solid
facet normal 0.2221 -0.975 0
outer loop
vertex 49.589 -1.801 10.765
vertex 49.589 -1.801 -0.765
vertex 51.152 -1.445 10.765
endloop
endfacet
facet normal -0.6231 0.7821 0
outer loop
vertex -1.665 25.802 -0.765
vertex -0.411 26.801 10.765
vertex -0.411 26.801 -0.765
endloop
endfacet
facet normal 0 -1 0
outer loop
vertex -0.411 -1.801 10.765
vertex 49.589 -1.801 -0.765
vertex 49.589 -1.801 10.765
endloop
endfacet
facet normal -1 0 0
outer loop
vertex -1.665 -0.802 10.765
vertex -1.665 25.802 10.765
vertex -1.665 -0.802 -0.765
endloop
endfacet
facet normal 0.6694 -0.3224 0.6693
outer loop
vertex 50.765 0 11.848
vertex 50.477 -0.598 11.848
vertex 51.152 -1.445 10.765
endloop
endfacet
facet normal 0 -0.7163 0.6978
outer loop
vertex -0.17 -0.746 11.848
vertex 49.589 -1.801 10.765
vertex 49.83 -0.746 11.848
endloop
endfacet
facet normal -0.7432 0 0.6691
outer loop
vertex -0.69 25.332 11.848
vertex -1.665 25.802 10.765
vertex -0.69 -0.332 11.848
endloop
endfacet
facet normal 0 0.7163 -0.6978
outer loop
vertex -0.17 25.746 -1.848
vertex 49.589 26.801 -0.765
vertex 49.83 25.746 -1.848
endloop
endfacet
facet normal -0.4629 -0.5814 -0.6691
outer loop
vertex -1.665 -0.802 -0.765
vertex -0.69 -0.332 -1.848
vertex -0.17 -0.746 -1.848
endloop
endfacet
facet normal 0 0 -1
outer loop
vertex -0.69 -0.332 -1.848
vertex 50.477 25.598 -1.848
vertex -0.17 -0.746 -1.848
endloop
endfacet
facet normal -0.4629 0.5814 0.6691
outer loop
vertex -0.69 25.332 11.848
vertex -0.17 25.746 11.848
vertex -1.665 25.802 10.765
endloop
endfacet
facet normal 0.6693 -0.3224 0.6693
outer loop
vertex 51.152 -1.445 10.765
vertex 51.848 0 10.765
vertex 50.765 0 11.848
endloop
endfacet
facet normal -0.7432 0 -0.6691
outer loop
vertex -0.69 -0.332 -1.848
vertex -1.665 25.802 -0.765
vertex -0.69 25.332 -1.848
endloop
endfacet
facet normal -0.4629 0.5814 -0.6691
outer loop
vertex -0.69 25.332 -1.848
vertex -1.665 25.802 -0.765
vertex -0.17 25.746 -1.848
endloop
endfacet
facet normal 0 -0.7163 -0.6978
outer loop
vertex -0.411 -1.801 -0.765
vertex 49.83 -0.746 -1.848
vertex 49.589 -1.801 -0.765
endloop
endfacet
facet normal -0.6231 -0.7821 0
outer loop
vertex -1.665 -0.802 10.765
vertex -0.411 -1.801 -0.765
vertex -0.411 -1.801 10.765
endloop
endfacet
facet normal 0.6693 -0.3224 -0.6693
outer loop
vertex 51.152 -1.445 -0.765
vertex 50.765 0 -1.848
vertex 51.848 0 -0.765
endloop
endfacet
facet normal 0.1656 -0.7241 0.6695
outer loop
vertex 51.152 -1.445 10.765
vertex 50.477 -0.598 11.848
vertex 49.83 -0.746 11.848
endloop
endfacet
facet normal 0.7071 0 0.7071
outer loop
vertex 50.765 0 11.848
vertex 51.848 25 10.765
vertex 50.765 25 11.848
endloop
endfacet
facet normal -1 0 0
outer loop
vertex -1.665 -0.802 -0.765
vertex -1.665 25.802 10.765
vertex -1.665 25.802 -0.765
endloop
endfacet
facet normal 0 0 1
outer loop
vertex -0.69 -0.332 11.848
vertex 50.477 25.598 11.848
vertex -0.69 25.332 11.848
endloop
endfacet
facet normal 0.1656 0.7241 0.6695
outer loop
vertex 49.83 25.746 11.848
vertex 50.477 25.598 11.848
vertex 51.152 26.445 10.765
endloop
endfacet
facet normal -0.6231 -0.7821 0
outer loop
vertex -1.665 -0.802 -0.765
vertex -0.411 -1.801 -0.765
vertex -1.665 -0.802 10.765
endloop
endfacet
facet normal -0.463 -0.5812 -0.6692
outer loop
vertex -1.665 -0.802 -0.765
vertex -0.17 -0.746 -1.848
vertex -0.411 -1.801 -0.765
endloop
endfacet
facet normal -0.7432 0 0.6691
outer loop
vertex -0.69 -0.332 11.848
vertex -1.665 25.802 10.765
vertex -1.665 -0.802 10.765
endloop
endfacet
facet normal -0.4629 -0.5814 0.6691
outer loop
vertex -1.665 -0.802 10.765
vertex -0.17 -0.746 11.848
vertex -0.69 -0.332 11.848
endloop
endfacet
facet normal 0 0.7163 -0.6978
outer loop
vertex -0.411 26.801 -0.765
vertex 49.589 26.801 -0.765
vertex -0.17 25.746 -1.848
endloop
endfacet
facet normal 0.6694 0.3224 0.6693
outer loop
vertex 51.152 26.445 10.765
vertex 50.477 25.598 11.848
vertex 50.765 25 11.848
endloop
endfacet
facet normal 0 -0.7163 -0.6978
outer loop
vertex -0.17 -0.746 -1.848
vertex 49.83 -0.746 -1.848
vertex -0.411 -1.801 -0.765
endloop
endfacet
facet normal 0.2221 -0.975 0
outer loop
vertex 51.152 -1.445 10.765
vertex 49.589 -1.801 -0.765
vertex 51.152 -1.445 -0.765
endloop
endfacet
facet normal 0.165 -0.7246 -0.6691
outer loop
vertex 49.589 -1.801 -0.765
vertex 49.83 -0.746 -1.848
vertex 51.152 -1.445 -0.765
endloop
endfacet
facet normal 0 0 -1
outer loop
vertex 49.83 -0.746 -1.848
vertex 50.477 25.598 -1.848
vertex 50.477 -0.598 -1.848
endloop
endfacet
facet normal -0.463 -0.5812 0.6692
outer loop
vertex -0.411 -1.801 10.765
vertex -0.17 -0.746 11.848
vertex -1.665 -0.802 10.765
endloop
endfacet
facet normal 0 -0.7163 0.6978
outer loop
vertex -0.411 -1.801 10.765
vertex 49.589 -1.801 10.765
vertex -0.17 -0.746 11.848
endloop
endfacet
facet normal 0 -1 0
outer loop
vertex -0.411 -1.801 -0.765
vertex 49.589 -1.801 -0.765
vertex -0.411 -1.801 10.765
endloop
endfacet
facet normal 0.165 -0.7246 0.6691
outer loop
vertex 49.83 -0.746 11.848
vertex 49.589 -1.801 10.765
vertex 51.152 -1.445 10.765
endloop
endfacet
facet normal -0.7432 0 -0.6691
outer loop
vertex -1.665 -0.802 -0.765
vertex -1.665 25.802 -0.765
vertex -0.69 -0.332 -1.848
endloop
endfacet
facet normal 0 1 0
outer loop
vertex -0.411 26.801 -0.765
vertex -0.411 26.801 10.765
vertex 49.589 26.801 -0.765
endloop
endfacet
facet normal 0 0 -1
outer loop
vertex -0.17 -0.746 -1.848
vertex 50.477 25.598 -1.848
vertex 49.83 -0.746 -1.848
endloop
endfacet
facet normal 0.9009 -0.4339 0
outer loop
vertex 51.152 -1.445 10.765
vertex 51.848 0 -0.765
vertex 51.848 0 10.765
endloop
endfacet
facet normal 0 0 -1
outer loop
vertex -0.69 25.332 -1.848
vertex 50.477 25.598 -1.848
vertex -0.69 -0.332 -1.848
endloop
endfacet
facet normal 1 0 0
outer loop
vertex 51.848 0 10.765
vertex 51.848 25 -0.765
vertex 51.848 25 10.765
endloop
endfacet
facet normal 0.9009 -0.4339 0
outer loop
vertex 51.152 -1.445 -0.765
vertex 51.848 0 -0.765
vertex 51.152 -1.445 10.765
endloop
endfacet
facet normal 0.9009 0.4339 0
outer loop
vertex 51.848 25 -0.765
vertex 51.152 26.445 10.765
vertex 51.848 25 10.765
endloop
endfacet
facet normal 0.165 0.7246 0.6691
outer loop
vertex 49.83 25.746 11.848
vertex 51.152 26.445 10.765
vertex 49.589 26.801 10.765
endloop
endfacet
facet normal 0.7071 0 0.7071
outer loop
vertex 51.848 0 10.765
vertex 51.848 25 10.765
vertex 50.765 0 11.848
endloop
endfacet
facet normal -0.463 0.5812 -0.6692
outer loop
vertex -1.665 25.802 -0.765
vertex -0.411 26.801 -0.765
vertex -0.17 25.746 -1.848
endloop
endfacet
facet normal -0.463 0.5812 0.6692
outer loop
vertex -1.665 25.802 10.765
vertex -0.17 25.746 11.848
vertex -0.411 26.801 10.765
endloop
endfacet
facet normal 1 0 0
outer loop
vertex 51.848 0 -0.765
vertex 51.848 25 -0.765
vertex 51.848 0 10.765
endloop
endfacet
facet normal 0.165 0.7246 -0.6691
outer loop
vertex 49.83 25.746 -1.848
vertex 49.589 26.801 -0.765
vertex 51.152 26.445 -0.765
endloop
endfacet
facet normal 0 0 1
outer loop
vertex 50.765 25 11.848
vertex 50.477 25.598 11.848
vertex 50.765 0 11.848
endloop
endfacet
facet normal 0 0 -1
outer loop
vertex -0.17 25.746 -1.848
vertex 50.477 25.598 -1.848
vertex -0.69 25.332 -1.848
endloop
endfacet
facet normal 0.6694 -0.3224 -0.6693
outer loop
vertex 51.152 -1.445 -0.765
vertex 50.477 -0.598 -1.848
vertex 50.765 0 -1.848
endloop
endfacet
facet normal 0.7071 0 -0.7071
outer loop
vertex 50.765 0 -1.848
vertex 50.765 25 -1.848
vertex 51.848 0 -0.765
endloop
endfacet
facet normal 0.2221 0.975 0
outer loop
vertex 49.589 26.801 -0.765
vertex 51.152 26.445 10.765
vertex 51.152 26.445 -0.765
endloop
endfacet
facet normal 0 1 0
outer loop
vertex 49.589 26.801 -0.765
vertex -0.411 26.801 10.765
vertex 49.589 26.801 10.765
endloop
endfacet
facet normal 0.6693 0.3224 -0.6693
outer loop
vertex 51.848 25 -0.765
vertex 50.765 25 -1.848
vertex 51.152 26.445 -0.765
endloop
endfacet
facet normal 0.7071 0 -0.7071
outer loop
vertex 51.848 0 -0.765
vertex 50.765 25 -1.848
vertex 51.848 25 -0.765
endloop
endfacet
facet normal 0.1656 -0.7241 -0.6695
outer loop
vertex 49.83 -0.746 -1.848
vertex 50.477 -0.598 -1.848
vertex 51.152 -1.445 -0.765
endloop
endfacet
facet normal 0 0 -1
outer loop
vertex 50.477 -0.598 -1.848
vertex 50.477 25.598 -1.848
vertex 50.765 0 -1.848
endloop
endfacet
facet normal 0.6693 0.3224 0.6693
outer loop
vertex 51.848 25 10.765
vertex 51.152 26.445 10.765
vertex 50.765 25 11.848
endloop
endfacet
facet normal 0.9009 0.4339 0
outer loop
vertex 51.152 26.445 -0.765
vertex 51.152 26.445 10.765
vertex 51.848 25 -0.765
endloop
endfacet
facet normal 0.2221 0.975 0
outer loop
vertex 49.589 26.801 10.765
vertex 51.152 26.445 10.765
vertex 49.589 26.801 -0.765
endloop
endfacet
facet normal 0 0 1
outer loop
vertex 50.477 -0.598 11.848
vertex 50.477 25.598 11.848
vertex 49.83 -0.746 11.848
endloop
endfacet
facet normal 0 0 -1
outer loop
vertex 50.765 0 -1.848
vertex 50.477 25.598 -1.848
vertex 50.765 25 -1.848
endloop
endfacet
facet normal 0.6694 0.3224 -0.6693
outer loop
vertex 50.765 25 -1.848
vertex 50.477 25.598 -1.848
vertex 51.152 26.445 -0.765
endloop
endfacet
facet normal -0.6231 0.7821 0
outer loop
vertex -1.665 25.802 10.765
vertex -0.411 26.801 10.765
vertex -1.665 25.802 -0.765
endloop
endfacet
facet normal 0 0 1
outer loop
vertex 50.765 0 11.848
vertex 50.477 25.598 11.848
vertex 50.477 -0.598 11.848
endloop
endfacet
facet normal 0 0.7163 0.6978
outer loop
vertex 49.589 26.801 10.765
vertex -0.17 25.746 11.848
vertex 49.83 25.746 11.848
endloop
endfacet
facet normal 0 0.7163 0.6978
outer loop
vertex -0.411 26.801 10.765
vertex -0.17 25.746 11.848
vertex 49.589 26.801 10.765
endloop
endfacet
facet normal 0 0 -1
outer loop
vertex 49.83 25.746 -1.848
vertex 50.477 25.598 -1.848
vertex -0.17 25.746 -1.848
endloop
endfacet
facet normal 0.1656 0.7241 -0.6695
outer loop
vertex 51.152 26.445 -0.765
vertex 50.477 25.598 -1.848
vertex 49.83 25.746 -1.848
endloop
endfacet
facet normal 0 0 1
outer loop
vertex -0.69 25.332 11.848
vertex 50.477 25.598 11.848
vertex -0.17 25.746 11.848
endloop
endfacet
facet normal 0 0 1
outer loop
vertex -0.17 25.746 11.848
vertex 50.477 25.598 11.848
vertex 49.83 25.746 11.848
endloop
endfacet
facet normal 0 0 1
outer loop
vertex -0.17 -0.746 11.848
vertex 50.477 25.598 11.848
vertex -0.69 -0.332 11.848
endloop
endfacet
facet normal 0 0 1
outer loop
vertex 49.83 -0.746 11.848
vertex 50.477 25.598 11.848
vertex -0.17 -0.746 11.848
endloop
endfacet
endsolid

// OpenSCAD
module solid(length, width, height, fillet_radius) {
  hull() {
    translate([0, 0, 0]) sphere(r = fillet_radius);
    translate([length, 0, 0]) sphere(r = fillet_radius);
    translate([0, width, 0]) sphere(r = fillet_radius);
    translate([length, width, 0]) sphere(r = fillet_radius);
    translate([0, 0, height]) sphere(r = fillet_radius);
    translate([length, 0, height]) sphere(r = fillet_radius);
    translate([0, width, height]) sphere(r = fillet_radius);
    translate([length, width, height]) sphere(r = fillet_radius);
  }
}

solid(length = 50, width = 25, height = 10, fillet_radius = 2);
